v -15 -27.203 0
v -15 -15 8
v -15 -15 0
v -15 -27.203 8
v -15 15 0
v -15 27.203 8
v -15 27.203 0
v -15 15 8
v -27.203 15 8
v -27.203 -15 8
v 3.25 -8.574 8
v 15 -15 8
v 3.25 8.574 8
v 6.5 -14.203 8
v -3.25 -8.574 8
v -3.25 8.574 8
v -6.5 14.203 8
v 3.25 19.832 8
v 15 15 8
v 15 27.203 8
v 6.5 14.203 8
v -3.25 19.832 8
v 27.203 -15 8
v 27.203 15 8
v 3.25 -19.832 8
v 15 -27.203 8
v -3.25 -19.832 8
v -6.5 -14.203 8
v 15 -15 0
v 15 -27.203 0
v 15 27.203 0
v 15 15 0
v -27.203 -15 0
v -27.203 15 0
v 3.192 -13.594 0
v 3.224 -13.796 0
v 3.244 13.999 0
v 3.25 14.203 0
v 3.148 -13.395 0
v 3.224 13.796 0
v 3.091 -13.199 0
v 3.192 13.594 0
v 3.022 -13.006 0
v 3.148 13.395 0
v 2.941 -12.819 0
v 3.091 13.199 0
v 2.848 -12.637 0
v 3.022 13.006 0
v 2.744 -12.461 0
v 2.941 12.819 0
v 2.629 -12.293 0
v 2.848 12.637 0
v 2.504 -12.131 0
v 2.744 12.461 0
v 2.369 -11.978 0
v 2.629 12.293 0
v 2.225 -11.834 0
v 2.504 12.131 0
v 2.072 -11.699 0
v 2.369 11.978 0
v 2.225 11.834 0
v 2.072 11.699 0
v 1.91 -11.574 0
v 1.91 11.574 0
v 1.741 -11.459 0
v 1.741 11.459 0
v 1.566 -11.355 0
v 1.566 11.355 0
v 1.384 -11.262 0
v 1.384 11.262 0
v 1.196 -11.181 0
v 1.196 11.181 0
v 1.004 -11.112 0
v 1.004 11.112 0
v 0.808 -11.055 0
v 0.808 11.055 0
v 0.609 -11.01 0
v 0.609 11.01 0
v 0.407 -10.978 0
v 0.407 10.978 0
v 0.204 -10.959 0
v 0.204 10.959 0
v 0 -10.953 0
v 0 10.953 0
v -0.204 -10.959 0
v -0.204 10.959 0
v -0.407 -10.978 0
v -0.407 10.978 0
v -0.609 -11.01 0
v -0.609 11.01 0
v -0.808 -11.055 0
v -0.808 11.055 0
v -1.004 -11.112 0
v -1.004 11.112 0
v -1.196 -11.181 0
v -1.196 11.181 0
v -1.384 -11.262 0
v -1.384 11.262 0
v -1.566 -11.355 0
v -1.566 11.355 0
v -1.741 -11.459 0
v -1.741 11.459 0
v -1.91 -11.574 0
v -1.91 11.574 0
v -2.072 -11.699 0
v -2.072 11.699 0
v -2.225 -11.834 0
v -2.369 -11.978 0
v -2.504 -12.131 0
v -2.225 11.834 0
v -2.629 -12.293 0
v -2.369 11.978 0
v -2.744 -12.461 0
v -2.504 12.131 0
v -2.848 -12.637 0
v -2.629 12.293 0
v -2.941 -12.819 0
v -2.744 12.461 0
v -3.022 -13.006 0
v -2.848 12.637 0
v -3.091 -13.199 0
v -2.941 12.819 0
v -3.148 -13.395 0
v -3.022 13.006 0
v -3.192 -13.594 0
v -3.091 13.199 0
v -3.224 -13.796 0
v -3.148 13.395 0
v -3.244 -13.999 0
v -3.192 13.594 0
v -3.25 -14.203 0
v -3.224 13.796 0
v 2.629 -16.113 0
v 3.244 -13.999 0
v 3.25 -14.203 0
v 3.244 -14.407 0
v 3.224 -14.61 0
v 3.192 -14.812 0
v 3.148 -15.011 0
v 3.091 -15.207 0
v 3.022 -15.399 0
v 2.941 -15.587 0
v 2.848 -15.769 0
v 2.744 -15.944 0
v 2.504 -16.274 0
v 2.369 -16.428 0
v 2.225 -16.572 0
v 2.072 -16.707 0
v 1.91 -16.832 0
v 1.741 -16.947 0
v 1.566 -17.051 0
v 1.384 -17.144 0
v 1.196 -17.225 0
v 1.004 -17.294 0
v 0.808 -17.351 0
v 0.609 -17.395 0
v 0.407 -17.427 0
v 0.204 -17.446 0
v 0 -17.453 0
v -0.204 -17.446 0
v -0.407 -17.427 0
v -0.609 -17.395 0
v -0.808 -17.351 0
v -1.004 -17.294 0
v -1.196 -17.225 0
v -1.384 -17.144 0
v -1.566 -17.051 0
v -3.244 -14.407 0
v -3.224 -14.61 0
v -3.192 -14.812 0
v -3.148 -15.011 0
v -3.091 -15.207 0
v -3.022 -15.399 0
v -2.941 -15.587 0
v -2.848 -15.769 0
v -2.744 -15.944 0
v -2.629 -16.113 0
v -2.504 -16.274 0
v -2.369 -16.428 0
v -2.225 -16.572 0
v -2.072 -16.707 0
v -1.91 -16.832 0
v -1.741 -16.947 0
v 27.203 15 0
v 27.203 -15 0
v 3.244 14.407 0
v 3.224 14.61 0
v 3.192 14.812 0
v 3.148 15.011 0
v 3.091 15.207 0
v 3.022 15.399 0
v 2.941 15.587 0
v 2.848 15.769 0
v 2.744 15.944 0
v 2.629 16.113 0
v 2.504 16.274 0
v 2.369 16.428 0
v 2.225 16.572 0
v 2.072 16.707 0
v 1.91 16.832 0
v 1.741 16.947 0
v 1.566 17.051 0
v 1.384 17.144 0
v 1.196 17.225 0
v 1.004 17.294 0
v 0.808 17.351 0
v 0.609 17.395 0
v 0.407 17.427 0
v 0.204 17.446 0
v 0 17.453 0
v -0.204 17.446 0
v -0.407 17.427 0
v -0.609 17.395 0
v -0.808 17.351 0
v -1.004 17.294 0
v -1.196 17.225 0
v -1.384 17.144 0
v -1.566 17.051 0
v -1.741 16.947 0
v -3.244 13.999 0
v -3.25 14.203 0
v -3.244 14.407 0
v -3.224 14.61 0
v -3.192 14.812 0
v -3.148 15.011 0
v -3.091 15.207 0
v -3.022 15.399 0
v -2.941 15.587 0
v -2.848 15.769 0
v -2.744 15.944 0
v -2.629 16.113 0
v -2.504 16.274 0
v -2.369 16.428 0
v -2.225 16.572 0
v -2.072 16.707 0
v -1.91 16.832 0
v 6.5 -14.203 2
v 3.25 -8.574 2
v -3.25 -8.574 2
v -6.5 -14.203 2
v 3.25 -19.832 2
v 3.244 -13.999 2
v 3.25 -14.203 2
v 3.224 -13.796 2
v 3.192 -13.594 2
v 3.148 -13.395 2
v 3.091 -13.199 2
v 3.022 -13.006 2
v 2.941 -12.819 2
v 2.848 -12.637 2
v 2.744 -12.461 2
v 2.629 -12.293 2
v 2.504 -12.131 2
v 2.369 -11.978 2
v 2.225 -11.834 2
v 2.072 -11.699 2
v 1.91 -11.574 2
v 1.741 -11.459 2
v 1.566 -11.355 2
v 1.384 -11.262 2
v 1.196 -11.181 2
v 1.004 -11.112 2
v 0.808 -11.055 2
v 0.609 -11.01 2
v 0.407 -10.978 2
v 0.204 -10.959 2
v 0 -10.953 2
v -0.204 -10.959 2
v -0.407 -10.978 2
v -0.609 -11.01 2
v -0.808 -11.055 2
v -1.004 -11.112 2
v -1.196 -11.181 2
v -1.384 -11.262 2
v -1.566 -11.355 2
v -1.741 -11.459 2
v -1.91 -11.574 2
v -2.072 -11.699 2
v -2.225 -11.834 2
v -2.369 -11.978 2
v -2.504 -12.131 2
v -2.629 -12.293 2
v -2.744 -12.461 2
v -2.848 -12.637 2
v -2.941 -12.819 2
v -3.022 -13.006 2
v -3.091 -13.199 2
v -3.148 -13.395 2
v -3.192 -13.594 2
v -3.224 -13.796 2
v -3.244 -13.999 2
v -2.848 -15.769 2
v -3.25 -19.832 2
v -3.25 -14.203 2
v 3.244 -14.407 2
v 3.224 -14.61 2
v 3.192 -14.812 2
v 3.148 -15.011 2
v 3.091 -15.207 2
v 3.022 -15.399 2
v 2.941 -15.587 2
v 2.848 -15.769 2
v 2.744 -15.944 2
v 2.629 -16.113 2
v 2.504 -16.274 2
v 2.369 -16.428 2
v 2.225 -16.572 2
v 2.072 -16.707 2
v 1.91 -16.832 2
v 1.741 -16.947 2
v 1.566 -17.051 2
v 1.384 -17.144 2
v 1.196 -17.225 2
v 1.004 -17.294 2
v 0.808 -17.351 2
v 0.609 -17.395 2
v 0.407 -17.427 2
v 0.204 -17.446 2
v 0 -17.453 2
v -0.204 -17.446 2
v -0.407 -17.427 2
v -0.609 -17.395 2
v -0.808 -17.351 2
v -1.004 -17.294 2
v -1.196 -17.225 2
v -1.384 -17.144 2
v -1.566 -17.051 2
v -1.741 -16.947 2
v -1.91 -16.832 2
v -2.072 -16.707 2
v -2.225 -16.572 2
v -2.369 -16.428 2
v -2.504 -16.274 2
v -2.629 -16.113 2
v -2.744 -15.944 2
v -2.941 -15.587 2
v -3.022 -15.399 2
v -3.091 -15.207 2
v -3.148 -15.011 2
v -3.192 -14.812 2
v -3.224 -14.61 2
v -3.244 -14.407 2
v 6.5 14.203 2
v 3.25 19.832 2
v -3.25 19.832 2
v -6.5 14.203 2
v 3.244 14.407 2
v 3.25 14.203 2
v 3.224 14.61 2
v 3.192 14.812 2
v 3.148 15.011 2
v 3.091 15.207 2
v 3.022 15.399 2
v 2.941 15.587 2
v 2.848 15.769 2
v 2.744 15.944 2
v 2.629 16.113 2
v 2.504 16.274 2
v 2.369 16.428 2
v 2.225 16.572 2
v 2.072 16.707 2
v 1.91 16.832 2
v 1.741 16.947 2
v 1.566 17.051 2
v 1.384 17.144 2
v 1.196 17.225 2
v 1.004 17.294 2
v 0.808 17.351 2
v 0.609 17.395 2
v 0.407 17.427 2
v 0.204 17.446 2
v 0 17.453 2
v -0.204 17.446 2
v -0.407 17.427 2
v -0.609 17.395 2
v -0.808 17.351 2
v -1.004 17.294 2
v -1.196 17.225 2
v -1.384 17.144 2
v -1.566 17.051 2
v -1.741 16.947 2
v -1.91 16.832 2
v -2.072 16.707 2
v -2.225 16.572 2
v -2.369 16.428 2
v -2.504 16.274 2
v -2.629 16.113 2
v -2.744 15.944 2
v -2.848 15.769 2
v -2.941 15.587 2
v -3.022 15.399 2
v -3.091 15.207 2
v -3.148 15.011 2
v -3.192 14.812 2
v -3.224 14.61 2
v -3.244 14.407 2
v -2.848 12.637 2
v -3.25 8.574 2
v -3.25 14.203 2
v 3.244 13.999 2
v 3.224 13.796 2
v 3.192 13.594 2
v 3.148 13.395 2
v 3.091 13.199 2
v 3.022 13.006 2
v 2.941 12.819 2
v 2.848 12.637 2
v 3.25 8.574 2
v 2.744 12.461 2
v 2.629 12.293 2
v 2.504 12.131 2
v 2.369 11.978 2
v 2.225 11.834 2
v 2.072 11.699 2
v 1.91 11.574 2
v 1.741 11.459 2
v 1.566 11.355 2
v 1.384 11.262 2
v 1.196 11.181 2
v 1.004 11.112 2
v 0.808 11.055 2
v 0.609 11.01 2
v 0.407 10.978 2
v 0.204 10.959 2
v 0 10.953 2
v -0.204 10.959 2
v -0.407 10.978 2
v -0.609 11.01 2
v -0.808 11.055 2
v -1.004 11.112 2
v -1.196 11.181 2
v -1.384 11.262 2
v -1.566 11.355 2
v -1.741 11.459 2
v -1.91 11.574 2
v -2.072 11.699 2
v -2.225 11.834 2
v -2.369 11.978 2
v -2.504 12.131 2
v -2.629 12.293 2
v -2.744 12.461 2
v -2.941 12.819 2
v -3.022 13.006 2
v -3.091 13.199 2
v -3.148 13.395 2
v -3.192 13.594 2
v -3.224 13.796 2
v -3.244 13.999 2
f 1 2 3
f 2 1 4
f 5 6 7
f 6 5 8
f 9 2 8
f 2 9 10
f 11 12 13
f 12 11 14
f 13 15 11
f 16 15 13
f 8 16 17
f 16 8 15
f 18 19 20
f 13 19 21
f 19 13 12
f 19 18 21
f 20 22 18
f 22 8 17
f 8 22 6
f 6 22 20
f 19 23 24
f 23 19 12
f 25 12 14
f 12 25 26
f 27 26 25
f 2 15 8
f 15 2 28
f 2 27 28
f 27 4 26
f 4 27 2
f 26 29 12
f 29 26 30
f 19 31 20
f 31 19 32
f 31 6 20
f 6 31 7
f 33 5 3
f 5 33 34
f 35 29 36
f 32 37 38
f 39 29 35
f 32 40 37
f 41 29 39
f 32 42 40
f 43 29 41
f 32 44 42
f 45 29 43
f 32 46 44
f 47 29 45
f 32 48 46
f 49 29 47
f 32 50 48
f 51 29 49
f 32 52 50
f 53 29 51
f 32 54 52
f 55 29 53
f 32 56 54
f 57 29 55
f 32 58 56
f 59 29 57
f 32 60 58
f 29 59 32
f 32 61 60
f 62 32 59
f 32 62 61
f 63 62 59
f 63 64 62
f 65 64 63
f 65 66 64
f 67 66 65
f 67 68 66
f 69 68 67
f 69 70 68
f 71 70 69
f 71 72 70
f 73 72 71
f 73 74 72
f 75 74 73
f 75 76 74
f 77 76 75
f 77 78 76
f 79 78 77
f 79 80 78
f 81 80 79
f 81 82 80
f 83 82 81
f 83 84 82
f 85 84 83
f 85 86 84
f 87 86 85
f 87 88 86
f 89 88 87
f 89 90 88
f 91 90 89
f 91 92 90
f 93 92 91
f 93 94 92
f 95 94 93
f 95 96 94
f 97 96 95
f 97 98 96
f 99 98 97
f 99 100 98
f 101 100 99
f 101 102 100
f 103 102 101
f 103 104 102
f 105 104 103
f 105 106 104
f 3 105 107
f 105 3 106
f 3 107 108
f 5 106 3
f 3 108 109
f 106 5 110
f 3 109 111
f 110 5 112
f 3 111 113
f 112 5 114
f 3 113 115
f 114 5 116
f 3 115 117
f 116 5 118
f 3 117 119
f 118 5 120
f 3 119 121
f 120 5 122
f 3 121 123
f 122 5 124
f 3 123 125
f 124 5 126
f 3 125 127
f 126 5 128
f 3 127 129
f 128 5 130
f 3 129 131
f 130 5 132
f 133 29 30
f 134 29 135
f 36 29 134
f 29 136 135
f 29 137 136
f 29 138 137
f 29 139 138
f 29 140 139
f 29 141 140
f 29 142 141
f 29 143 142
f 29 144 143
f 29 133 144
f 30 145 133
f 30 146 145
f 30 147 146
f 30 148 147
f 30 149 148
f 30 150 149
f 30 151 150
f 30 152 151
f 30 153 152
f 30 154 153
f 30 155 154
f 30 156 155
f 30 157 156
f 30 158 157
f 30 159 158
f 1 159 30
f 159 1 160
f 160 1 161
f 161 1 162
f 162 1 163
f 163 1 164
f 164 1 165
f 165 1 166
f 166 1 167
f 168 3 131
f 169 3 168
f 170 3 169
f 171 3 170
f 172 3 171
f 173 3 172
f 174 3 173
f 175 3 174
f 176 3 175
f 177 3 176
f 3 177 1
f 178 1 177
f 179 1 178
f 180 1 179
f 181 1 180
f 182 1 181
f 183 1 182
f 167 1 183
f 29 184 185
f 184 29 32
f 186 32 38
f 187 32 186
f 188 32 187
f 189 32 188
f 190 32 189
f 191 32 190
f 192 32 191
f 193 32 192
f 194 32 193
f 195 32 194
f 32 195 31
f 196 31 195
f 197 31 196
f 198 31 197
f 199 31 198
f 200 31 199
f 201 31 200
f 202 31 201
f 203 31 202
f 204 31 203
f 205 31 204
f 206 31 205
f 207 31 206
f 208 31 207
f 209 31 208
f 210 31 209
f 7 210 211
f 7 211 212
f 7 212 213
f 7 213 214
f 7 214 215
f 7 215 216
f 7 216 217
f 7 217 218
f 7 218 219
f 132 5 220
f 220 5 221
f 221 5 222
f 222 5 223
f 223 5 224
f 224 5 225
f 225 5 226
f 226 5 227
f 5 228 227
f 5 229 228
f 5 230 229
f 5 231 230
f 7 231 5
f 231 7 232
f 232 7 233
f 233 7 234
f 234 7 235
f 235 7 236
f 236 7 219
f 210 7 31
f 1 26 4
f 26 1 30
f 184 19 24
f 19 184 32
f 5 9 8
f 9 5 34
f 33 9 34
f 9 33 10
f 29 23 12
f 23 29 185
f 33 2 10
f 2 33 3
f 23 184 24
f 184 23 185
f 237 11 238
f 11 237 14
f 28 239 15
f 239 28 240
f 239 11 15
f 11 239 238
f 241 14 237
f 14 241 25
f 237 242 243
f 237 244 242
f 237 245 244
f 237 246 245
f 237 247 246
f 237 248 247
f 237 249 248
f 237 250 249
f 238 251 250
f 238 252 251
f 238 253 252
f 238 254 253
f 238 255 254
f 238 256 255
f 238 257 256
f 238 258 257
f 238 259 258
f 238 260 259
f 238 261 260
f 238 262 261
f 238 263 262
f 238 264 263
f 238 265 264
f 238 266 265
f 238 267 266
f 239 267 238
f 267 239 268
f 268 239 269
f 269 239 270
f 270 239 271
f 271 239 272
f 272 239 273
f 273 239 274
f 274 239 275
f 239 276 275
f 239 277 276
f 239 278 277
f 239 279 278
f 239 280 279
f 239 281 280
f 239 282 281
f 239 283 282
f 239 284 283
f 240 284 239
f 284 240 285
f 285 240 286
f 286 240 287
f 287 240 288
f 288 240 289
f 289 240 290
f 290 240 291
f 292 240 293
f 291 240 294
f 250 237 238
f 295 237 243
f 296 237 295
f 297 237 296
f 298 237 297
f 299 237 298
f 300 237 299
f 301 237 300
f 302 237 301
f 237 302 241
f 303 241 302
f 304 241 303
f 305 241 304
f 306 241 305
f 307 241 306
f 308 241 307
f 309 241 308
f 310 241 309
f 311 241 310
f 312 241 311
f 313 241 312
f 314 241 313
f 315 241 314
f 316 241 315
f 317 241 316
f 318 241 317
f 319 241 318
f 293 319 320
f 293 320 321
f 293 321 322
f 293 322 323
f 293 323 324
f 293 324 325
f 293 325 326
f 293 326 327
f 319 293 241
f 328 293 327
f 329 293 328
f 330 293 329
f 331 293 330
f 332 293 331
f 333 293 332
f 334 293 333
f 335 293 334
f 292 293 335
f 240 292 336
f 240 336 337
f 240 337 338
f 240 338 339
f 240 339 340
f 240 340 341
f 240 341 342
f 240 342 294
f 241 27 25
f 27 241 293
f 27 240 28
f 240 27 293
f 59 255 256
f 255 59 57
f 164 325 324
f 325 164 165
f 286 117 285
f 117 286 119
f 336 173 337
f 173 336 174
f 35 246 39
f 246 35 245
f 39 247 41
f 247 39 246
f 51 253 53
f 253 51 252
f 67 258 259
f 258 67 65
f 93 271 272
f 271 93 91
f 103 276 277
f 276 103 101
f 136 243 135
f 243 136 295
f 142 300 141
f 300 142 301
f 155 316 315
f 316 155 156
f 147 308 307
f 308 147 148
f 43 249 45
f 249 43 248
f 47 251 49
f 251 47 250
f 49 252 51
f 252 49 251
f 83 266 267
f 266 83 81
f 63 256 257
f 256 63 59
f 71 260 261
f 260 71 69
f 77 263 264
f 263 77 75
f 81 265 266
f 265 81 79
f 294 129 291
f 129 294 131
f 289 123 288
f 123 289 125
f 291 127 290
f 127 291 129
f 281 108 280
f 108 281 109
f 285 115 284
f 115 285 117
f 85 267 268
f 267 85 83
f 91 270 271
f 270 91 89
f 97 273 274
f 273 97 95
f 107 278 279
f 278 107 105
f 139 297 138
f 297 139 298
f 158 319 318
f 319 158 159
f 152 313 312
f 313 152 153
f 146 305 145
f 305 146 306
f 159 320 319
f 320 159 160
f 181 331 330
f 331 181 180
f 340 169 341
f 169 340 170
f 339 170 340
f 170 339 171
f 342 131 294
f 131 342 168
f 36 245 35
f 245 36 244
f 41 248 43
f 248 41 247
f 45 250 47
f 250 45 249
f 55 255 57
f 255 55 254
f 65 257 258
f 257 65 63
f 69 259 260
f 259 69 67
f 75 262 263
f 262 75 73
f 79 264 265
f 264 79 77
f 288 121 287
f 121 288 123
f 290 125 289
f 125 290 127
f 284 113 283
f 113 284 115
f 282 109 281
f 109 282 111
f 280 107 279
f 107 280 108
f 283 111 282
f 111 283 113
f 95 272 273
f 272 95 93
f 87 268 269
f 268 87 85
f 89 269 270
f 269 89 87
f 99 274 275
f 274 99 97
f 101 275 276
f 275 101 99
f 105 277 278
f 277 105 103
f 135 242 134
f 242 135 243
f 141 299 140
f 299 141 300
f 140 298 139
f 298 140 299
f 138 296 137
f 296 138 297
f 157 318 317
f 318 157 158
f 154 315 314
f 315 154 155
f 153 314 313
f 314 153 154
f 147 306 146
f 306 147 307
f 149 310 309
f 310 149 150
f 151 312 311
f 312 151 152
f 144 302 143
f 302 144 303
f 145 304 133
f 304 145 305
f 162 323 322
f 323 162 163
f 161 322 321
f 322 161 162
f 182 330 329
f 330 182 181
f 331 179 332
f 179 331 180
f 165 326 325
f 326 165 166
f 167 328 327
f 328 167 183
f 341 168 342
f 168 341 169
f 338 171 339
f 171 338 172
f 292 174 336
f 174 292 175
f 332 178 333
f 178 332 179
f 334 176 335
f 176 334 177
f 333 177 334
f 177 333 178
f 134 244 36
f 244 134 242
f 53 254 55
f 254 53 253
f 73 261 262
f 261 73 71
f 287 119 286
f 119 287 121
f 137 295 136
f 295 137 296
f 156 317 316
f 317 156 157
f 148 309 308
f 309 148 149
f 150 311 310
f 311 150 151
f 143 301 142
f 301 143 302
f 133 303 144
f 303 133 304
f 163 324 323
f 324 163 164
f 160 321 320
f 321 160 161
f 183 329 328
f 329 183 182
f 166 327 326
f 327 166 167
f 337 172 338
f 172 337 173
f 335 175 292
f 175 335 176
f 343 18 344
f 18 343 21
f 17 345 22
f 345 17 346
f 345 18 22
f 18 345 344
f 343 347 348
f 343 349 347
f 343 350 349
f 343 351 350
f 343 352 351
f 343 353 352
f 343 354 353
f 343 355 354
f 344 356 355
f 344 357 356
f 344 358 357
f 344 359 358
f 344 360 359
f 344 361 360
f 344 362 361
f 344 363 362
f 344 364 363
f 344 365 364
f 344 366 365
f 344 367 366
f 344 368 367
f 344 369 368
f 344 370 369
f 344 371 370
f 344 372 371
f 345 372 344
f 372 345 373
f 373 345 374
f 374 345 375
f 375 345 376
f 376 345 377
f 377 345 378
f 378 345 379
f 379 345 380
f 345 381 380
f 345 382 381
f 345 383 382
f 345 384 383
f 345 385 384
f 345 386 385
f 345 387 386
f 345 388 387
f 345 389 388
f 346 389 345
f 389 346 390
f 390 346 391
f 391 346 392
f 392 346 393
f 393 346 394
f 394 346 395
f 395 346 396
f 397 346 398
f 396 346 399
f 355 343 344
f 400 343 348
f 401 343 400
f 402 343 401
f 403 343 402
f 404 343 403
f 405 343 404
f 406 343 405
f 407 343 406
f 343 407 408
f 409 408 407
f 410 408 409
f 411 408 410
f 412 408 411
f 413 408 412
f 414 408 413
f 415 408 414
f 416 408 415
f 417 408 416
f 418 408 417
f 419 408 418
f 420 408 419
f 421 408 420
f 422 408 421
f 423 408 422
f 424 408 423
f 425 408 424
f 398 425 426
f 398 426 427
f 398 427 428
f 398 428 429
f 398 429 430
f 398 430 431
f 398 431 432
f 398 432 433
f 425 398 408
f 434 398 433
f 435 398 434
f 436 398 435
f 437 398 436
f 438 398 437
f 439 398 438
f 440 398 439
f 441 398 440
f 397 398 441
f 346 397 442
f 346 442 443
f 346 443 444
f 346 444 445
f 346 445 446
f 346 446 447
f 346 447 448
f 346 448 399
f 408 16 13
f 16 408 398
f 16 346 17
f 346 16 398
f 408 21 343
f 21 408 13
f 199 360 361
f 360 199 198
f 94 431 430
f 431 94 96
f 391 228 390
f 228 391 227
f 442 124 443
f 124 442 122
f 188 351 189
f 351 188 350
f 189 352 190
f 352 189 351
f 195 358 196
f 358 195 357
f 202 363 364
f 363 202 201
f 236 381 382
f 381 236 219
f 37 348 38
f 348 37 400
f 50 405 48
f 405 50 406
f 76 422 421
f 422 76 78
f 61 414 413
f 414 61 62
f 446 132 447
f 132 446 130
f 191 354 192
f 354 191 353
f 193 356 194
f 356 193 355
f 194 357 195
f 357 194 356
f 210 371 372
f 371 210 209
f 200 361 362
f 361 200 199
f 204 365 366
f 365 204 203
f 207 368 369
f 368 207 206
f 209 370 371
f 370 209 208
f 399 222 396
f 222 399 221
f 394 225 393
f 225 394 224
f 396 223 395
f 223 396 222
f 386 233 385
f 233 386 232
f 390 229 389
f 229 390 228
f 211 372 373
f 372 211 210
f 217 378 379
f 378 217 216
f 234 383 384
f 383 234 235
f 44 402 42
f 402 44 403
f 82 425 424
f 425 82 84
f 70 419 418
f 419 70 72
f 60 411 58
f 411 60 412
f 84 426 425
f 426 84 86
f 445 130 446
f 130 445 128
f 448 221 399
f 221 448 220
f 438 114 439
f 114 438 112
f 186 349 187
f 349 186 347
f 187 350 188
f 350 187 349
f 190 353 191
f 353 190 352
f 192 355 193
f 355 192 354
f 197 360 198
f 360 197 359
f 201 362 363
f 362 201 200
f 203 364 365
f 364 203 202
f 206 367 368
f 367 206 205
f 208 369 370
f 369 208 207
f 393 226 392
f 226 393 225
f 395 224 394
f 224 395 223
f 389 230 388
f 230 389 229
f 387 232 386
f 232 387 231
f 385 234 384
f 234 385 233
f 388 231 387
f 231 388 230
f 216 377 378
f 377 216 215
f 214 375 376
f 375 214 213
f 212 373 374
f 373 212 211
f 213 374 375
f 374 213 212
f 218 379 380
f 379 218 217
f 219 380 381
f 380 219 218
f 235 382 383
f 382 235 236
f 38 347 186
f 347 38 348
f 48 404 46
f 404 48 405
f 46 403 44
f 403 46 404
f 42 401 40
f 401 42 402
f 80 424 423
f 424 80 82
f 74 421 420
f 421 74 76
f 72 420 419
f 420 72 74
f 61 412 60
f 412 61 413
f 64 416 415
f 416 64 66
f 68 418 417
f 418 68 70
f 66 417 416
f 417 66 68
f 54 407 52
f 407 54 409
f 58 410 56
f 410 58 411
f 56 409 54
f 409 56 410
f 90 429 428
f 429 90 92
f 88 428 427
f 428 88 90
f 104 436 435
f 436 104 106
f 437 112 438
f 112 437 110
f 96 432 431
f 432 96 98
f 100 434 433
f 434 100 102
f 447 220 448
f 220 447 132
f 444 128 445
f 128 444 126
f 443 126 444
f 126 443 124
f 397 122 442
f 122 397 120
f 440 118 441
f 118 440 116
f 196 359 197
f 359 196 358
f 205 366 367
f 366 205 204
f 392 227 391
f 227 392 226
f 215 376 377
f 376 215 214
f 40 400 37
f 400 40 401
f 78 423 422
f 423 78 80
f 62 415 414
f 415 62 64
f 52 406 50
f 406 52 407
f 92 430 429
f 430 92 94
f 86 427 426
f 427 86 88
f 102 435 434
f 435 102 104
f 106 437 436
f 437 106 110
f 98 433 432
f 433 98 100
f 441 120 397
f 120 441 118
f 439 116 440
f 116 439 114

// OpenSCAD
// file: 00_GlobalVariables.scad
$fn = 100;

eps = 0.05;

Rail_D = 12.0 + 0.5;

// 01_StepperMount.scad

Stepper_W = 42.0;
Stepper_Hole_S = 31.0;
Stepper_Hole_D = 4.0;
Stepper_Coupler_D = 22.0 + 0.5;

Stepper_Mount_L = 37.0;
Stepper_Mount_Flange_T = 5.0;
Stepper_Mount_Chamfer = 4.0;

Stepper_Mount_Wrench_Slot_S = 3.0;
Stepper_Mount_Wrench_Slot_Offset = 10.0;

Stepper_Mount_Nut_Slot_T = 4.5;
Stepper_Mount_Nut_Slot_D = 9.5;

Stepper_Mount_Hole_D = 6.0;

// 02_RodMountEndstop.scad

Rod_Mount_L = 100;
Rod_Mount_W = 60;
Rod_Mount_T = 10;

Rotary_Bearing_T = 7.0;
Rotary_Bearing_OD = 22.225 + 0.25;
Rotary_Bearing_ID = 10.0 + 5.0;
//Rotary_Bearing_ID = Stepper_Coupler_D;

Rod_Mount_Hole_Sx = 60;
Rod_Mount_Hole_Sy = 36;
Rod_Mount_Hole_D = 6;

Endstop_Switch_L = 20 + 0.5;
Endstop_Switch_W = 6.5 + 0.25;
Endstop_Switch_D = 5.5;
Endstop_Switch_S = 6.0;

Endstop_Switch_Hole_D = 4;
Endstop_Switch_Hole_S = 8;

// 03_ToolheadSled.scad

// For 1/4"-20 x 1" countersink screw
Screw_Head_S = 7.0;
Screw_Head_D = 12.0 + 0.75;
Screw_Head_T = 5.0;
Screw_Body_D = 6.5;

Guide_Rod_D = 9.5 + 1.5;

Toolhead_Nut_T = 8.5 + 1.0 - 0.125;
Toolhead_Nut_W = 20.0 + 1.0;

Toolhead_Bearing_ID = 12.0 + 0.75;
Toolhead_Bearing_OD = 21.0 + 0.50 - 0.125;
Toolhead_Bearing_L = 30.0;
Toolhead_Bearing_S = Rod_Mount_Hole_Sx;

Toolhead_Margin = 5.0;

// 05_YAxisCup.scad

Y_Axis_Cup_D = 10.0;
Y_Axis_Cup_T = 2.5;
Y_Axis_Cup_M = 0.25;

XZSled_Bearing_OD = Toolhead_Bearing_OD + 0.50 - 0.125;

Extrusion_W = 20.0 + 0.25;

M5_Washer_D = 10.0;
M5_Head_H = 6.0;
M5_Bolt_D = 6.0;
M5_Bolt_L = 16.0;
// main file
include <00_GlobalVariables.scad>

Bumper_T = 8.0;

Nut_D = 13.0;
Nut_T = 6.0;

module 04_ToolheadSledBumper(){
    difference(){
        translate([0,0,Bumper_T/2.0])
            for(i=[0,1])
                rotate([0,0,i*90])
                    cube([Toolhead_Bearing_L, 2.0*(((Toolhead_Bearing_S-Toolhead_Bearing_OD)/2.0+Toolhead_Nut_W*cos(30)/2.0)/2.0)+2.0*Nut_D, Bumper_T], center=true);
    
        for(i=[-1,1])
            translate([0,i*((Toolhead_Bearing_S-Toolhead_Bearing_OD)/2.0+Toolhead_Nut_W*cos(30)/2.0)/2.0,0]){
                translate([0,0,Bumper_T-Nut_T])
                    cylinder($fn=6, d=Nut_D, h=Nut_T+eps);
                translate([0,0,-eps])
                    cylinder(d=Screw_Body_D, h=Bumper_T+eps);
            }
    }
}

04_ToolheadSledBumper();
